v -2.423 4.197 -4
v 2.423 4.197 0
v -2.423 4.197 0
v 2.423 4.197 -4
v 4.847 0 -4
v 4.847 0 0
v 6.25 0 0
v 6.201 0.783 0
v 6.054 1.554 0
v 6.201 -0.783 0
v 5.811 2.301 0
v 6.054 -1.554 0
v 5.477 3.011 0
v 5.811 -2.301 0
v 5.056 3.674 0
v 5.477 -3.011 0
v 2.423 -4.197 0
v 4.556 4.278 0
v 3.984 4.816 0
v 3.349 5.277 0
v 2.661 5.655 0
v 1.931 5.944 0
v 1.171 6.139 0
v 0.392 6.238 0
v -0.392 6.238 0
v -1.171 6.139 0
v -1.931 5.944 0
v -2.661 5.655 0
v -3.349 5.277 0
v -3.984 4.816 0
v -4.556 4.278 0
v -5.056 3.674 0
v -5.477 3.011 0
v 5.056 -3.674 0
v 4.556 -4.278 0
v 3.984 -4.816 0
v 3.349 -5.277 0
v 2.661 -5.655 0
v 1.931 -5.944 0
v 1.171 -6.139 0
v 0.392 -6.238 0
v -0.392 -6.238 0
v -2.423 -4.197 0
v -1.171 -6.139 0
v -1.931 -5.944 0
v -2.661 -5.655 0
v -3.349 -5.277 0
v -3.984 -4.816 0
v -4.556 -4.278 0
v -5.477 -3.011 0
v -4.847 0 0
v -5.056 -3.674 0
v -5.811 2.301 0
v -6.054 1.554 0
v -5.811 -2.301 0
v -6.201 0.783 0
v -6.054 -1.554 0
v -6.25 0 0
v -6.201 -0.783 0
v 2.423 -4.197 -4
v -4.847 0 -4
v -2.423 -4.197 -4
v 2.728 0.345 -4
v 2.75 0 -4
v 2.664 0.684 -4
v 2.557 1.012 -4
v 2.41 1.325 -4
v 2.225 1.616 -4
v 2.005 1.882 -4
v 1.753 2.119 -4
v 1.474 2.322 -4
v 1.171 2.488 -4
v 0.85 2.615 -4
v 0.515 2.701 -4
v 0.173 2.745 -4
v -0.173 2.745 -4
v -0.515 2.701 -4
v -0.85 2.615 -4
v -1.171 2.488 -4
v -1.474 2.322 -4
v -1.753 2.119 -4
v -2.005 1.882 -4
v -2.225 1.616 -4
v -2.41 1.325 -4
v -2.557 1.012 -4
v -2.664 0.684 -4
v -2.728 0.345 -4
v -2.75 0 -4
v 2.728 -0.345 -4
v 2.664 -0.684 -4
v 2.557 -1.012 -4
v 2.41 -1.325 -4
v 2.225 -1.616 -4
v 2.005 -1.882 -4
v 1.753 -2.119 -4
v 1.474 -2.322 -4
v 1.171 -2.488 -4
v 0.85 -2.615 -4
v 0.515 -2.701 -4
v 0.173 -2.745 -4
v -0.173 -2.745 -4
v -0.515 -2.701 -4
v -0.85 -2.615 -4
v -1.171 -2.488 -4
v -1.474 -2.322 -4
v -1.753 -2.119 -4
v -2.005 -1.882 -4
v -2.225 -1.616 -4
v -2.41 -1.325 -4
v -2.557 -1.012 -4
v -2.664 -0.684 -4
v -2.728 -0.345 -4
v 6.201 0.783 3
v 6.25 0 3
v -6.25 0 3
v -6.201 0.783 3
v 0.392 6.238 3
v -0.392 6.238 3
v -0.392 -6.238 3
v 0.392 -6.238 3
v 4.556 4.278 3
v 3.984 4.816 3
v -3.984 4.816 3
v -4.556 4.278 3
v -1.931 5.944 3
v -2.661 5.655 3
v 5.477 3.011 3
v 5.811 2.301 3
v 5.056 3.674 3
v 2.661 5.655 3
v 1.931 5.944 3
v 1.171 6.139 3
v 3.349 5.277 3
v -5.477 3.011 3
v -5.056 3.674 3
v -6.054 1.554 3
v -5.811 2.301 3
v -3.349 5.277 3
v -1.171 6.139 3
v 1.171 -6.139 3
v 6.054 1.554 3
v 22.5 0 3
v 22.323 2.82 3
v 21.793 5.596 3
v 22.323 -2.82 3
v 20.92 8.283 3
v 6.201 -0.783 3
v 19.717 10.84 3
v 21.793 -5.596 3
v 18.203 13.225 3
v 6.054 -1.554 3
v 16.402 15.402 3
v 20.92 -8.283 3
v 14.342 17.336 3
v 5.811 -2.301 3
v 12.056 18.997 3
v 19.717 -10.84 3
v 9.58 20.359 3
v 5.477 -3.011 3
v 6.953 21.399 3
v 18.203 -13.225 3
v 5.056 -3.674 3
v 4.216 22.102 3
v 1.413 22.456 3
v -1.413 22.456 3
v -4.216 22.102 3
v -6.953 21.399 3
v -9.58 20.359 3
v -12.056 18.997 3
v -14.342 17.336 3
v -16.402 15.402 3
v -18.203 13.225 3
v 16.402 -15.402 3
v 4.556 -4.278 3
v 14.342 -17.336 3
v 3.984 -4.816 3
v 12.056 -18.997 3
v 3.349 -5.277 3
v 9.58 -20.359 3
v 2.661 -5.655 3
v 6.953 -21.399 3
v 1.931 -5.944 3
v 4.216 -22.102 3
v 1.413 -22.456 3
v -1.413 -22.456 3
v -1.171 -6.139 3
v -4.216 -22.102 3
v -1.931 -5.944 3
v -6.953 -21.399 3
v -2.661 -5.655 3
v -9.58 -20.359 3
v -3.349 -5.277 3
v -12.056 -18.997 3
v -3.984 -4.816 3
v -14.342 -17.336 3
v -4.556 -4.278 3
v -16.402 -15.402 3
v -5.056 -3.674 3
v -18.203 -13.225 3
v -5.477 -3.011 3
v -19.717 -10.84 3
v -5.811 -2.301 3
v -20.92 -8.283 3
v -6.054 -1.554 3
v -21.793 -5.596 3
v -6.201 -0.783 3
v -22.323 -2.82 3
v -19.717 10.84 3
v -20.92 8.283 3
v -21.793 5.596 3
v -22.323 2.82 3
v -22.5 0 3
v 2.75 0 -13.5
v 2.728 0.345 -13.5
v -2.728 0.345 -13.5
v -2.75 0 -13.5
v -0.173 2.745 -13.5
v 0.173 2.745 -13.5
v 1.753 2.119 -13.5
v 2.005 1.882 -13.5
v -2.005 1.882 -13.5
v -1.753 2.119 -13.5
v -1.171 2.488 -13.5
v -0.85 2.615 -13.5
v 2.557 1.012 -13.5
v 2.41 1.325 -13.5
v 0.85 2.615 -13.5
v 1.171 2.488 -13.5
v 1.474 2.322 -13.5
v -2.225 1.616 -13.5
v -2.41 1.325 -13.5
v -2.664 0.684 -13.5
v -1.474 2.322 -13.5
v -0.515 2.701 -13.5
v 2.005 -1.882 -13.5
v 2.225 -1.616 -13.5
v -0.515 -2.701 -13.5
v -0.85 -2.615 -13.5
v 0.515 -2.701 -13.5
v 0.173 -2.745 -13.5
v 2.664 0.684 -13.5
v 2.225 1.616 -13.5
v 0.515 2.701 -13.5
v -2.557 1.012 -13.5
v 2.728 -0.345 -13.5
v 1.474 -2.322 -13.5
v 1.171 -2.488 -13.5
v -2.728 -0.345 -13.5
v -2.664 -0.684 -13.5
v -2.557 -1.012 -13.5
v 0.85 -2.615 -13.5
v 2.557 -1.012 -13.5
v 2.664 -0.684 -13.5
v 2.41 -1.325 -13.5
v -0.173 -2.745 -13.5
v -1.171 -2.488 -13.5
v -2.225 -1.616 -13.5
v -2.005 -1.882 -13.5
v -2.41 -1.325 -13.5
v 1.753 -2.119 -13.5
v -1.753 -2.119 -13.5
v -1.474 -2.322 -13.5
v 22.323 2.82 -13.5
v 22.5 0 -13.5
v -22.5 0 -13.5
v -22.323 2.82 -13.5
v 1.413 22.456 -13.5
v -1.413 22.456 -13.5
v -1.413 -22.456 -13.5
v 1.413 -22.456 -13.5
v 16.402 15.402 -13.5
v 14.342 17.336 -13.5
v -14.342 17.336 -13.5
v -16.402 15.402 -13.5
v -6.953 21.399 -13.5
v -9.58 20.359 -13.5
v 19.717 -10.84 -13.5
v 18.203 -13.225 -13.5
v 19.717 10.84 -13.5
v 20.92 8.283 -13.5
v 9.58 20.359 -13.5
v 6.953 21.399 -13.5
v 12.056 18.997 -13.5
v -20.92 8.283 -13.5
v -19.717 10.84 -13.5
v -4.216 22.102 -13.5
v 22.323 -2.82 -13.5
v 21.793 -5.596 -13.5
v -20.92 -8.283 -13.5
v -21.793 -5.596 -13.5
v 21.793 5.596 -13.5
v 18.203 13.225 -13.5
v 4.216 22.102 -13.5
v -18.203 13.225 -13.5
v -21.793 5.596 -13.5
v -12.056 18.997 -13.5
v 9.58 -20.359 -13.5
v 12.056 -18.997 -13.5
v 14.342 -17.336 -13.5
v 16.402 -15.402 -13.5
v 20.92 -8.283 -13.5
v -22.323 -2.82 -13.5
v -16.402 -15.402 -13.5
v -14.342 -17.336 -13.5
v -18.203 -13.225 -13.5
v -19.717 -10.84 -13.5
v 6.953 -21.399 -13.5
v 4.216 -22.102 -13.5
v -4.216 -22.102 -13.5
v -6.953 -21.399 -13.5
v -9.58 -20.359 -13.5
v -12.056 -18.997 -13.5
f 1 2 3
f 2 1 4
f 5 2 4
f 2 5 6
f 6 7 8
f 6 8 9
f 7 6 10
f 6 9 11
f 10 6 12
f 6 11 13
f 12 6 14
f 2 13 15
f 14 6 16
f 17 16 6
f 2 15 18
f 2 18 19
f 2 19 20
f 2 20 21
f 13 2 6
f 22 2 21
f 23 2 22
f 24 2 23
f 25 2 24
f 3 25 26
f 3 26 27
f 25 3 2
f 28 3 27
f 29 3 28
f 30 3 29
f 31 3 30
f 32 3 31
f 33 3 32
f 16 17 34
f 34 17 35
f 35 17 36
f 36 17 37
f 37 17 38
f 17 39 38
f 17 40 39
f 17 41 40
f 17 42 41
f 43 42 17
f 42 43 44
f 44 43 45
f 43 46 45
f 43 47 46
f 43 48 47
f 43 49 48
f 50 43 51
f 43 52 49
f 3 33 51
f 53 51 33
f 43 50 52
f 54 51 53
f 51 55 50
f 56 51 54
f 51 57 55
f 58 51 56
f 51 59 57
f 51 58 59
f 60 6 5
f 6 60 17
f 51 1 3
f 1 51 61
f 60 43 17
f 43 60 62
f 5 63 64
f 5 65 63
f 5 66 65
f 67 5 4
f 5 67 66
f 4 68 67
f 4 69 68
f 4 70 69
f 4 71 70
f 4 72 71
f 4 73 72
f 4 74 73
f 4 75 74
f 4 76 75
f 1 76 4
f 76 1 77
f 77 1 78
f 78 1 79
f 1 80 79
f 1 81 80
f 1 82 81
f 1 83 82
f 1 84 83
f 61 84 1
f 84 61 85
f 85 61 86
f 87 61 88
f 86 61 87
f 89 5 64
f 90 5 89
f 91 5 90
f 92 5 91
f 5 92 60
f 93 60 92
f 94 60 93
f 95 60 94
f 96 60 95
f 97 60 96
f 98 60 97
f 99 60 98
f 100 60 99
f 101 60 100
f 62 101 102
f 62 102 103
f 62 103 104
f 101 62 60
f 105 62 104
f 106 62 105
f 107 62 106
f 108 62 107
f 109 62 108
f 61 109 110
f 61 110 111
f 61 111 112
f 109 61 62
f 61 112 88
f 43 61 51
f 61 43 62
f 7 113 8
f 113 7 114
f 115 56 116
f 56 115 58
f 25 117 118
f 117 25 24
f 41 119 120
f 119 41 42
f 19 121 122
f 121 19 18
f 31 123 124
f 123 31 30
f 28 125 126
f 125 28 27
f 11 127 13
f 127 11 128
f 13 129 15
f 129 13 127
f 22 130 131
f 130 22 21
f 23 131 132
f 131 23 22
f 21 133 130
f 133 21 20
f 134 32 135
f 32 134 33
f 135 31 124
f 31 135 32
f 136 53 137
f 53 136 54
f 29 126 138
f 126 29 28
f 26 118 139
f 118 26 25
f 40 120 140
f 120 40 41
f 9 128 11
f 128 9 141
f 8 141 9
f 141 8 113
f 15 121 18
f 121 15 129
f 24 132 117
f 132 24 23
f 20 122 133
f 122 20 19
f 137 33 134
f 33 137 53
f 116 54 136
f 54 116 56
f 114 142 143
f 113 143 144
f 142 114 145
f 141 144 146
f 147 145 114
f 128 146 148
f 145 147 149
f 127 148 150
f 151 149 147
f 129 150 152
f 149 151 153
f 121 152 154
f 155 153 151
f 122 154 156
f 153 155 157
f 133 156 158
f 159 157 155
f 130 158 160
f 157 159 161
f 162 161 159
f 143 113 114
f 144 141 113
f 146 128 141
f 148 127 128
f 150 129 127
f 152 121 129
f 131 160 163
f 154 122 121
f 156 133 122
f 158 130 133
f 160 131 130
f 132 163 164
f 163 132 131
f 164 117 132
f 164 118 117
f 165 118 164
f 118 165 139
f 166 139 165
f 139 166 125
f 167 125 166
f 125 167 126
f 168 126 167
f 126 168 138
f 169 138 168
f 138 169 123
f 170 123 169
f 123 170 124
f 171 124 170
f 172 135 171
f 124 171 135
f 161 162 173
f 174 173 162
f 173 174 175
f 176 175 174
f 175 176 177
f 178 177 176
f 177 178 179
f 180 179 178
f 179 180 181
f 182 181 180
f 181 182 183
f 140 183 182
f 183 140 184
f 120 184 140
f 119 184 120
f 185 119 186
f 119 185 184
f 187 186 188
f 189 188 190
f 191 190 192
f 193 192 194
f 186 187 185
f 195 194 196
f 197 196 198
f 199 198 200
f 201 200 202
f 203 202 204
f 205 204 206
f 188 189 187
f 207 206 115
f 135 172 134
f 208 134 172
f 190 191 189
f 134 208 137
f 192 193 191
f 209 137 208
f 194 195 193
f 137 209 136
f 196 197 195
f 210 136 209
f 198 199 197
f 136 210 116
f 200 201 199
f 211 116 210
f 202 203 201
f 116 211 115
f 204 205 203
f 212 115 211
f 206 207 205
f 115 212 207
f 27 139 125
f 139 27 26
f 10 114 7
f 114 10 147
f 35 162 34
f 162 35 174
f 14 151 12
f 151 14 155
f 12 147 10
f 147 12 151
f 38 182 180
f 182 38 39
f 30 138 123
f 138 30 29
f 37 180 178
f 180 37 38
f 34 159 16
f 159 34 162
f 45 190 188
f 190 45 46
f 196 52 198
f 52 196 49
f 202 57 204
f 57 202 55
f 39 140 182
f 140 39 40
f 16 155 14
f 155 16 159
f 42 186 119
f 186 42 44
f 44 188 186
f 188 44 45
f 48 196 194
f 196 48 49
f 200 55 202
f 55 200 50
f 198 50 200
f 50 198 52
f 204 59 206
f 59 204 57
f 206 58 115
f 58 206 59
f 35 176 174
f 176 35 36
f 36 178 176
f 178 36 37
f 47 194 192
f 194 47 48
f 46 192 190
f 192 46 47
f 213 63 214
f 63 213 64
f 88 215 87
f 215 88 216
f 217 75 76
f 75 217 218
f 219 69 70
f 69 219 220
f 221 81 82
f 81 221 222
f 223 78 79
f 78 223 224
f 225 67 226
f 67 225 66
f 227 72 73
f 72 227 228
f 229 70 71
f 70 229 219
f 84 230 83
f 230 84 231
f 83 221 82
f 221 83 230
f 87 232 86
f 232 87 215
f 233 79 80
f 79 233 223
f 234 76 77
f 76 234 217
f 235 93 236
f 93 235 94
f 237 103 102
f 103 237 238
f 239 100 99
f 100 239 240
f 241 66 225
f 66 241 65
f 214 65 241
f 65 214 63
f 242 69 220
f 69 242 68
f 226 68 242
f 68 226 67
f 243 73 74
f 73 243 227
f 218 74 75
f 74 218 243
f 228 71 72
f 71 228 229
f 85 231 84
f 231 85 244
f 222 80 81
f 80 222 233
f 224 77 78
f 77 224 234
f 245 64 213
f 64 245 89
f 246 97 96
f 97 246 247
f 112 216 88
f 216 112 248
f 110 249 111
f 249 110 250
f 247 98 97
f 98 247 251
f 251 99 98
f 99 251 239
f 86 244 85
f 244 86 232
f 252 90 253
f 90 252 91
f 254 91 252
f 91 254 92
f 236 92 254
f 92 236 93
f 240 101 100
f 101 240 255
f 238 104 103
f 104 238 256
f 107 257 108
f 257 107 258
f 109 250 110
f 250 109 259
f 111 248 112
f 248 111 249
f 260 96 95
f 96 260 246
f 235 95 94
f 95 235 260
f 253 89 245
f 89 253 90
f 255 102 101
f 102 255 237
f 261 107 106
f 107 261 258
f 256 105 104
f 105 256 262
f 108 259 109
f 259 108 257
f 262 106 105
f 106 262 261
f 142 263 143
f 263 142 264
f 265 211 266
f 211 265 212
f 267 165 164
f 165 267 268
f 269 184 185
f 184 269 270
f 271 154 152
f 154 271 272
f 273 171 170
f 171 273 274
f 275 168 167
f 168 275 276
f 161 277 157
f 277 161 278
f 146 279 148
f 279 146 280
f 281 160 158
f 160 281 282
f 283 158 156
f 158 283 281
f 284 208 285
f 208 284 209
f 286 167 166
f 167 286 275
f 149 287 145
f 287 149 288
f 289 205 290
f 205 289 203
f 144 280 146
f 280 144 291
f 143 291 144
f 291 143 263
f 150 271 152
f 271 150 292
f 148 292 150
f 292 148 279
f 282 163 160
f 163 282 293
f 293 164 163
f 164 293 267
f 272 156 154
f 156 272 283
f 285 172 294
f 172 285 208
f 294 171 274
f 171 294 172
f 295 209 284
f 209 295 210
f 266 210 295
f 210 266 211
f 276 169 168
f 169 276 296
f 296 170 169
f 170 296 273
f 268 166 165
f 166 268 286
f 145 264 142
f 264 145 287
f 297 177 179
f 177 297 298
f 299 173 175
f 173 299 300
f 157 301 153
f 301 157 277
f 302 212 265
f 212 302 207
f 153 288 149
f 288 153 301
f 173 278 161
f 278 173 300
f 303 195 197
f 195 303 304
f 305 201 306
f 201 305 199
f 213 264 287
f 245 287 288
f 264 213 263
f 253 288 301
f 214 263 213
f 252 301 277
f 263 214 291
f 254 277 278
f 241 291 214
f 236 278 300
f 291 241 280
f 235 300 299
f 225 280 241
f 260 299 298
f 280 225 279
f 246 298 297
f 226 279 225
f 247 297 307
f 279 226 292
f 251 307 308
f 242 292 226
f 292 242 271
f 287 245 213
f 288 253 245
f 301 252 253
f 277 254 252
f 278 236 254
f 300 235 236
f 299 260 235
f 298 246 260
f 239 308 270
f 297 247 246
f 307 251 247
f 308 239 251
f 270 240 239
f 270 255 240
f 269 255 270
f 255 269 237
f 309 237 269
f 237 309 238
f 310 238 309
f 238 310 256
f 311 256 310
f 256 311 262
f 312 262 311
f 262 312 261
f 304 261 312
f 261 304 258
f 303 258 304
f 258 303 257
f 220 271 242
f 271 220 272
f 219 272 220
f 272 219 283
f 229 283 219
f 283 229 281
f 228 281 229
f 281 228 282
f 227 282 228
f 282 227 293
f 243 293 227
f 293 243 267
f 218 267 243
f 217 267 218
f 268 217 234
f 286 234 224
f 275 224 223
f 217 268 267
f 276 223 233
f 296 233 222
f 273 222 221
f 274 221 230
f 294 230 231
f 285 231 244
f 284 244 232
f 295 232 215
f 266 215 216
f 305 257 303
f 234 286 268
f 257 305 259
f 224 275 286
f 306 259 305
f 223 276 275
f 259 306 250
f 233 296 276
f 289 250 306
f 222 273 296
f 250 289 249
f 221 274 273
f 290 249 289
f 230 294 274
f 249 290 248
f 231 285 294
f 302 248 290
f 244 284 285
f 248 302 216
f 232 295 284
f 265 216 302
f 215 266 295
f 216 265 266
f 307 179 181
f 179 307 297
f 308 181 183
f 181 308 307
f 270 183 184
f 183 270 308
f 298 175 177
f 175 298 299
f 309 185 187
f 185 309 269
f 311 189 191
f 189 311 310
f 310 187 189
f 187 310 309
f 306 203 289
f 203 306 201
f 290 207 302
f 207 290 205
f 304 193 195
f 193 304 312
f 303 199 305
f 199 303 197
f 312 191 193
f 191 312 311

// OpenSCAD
$fn = 50;

difference() {
	union() {
		translate(v = [0, 0, -13.5]) {
			cylinder(h = 16.5, r = 22.5);
		}
	}
	union() {
		translate(v = [0, 0, 0]) {
			rotate(a = [0, 0, 0]) {
				difference() {
					union() {
						translate(v = [0, 0, -4]) {
							linear_extrude(height = 4) {
								polygon(points = [[4.8468, 0.0], [2.4234000000000004, 4.197451927062417], [-2.423399999999999, 4.197451927062417], [-4.8468, 5.935618106107392e-16], [-2.423400000000002, -4.197451927062416], [2.423399999999997, -4.197451927062419]]);
							}
						}
					}
					union();
				}
			}
		}
		#cylinder(h = 3, r = 6.25);
		#translate(v = [0, 0, -100.0]) {
			cylinder(h = 200, r = 2.75);
		}
	}
}
